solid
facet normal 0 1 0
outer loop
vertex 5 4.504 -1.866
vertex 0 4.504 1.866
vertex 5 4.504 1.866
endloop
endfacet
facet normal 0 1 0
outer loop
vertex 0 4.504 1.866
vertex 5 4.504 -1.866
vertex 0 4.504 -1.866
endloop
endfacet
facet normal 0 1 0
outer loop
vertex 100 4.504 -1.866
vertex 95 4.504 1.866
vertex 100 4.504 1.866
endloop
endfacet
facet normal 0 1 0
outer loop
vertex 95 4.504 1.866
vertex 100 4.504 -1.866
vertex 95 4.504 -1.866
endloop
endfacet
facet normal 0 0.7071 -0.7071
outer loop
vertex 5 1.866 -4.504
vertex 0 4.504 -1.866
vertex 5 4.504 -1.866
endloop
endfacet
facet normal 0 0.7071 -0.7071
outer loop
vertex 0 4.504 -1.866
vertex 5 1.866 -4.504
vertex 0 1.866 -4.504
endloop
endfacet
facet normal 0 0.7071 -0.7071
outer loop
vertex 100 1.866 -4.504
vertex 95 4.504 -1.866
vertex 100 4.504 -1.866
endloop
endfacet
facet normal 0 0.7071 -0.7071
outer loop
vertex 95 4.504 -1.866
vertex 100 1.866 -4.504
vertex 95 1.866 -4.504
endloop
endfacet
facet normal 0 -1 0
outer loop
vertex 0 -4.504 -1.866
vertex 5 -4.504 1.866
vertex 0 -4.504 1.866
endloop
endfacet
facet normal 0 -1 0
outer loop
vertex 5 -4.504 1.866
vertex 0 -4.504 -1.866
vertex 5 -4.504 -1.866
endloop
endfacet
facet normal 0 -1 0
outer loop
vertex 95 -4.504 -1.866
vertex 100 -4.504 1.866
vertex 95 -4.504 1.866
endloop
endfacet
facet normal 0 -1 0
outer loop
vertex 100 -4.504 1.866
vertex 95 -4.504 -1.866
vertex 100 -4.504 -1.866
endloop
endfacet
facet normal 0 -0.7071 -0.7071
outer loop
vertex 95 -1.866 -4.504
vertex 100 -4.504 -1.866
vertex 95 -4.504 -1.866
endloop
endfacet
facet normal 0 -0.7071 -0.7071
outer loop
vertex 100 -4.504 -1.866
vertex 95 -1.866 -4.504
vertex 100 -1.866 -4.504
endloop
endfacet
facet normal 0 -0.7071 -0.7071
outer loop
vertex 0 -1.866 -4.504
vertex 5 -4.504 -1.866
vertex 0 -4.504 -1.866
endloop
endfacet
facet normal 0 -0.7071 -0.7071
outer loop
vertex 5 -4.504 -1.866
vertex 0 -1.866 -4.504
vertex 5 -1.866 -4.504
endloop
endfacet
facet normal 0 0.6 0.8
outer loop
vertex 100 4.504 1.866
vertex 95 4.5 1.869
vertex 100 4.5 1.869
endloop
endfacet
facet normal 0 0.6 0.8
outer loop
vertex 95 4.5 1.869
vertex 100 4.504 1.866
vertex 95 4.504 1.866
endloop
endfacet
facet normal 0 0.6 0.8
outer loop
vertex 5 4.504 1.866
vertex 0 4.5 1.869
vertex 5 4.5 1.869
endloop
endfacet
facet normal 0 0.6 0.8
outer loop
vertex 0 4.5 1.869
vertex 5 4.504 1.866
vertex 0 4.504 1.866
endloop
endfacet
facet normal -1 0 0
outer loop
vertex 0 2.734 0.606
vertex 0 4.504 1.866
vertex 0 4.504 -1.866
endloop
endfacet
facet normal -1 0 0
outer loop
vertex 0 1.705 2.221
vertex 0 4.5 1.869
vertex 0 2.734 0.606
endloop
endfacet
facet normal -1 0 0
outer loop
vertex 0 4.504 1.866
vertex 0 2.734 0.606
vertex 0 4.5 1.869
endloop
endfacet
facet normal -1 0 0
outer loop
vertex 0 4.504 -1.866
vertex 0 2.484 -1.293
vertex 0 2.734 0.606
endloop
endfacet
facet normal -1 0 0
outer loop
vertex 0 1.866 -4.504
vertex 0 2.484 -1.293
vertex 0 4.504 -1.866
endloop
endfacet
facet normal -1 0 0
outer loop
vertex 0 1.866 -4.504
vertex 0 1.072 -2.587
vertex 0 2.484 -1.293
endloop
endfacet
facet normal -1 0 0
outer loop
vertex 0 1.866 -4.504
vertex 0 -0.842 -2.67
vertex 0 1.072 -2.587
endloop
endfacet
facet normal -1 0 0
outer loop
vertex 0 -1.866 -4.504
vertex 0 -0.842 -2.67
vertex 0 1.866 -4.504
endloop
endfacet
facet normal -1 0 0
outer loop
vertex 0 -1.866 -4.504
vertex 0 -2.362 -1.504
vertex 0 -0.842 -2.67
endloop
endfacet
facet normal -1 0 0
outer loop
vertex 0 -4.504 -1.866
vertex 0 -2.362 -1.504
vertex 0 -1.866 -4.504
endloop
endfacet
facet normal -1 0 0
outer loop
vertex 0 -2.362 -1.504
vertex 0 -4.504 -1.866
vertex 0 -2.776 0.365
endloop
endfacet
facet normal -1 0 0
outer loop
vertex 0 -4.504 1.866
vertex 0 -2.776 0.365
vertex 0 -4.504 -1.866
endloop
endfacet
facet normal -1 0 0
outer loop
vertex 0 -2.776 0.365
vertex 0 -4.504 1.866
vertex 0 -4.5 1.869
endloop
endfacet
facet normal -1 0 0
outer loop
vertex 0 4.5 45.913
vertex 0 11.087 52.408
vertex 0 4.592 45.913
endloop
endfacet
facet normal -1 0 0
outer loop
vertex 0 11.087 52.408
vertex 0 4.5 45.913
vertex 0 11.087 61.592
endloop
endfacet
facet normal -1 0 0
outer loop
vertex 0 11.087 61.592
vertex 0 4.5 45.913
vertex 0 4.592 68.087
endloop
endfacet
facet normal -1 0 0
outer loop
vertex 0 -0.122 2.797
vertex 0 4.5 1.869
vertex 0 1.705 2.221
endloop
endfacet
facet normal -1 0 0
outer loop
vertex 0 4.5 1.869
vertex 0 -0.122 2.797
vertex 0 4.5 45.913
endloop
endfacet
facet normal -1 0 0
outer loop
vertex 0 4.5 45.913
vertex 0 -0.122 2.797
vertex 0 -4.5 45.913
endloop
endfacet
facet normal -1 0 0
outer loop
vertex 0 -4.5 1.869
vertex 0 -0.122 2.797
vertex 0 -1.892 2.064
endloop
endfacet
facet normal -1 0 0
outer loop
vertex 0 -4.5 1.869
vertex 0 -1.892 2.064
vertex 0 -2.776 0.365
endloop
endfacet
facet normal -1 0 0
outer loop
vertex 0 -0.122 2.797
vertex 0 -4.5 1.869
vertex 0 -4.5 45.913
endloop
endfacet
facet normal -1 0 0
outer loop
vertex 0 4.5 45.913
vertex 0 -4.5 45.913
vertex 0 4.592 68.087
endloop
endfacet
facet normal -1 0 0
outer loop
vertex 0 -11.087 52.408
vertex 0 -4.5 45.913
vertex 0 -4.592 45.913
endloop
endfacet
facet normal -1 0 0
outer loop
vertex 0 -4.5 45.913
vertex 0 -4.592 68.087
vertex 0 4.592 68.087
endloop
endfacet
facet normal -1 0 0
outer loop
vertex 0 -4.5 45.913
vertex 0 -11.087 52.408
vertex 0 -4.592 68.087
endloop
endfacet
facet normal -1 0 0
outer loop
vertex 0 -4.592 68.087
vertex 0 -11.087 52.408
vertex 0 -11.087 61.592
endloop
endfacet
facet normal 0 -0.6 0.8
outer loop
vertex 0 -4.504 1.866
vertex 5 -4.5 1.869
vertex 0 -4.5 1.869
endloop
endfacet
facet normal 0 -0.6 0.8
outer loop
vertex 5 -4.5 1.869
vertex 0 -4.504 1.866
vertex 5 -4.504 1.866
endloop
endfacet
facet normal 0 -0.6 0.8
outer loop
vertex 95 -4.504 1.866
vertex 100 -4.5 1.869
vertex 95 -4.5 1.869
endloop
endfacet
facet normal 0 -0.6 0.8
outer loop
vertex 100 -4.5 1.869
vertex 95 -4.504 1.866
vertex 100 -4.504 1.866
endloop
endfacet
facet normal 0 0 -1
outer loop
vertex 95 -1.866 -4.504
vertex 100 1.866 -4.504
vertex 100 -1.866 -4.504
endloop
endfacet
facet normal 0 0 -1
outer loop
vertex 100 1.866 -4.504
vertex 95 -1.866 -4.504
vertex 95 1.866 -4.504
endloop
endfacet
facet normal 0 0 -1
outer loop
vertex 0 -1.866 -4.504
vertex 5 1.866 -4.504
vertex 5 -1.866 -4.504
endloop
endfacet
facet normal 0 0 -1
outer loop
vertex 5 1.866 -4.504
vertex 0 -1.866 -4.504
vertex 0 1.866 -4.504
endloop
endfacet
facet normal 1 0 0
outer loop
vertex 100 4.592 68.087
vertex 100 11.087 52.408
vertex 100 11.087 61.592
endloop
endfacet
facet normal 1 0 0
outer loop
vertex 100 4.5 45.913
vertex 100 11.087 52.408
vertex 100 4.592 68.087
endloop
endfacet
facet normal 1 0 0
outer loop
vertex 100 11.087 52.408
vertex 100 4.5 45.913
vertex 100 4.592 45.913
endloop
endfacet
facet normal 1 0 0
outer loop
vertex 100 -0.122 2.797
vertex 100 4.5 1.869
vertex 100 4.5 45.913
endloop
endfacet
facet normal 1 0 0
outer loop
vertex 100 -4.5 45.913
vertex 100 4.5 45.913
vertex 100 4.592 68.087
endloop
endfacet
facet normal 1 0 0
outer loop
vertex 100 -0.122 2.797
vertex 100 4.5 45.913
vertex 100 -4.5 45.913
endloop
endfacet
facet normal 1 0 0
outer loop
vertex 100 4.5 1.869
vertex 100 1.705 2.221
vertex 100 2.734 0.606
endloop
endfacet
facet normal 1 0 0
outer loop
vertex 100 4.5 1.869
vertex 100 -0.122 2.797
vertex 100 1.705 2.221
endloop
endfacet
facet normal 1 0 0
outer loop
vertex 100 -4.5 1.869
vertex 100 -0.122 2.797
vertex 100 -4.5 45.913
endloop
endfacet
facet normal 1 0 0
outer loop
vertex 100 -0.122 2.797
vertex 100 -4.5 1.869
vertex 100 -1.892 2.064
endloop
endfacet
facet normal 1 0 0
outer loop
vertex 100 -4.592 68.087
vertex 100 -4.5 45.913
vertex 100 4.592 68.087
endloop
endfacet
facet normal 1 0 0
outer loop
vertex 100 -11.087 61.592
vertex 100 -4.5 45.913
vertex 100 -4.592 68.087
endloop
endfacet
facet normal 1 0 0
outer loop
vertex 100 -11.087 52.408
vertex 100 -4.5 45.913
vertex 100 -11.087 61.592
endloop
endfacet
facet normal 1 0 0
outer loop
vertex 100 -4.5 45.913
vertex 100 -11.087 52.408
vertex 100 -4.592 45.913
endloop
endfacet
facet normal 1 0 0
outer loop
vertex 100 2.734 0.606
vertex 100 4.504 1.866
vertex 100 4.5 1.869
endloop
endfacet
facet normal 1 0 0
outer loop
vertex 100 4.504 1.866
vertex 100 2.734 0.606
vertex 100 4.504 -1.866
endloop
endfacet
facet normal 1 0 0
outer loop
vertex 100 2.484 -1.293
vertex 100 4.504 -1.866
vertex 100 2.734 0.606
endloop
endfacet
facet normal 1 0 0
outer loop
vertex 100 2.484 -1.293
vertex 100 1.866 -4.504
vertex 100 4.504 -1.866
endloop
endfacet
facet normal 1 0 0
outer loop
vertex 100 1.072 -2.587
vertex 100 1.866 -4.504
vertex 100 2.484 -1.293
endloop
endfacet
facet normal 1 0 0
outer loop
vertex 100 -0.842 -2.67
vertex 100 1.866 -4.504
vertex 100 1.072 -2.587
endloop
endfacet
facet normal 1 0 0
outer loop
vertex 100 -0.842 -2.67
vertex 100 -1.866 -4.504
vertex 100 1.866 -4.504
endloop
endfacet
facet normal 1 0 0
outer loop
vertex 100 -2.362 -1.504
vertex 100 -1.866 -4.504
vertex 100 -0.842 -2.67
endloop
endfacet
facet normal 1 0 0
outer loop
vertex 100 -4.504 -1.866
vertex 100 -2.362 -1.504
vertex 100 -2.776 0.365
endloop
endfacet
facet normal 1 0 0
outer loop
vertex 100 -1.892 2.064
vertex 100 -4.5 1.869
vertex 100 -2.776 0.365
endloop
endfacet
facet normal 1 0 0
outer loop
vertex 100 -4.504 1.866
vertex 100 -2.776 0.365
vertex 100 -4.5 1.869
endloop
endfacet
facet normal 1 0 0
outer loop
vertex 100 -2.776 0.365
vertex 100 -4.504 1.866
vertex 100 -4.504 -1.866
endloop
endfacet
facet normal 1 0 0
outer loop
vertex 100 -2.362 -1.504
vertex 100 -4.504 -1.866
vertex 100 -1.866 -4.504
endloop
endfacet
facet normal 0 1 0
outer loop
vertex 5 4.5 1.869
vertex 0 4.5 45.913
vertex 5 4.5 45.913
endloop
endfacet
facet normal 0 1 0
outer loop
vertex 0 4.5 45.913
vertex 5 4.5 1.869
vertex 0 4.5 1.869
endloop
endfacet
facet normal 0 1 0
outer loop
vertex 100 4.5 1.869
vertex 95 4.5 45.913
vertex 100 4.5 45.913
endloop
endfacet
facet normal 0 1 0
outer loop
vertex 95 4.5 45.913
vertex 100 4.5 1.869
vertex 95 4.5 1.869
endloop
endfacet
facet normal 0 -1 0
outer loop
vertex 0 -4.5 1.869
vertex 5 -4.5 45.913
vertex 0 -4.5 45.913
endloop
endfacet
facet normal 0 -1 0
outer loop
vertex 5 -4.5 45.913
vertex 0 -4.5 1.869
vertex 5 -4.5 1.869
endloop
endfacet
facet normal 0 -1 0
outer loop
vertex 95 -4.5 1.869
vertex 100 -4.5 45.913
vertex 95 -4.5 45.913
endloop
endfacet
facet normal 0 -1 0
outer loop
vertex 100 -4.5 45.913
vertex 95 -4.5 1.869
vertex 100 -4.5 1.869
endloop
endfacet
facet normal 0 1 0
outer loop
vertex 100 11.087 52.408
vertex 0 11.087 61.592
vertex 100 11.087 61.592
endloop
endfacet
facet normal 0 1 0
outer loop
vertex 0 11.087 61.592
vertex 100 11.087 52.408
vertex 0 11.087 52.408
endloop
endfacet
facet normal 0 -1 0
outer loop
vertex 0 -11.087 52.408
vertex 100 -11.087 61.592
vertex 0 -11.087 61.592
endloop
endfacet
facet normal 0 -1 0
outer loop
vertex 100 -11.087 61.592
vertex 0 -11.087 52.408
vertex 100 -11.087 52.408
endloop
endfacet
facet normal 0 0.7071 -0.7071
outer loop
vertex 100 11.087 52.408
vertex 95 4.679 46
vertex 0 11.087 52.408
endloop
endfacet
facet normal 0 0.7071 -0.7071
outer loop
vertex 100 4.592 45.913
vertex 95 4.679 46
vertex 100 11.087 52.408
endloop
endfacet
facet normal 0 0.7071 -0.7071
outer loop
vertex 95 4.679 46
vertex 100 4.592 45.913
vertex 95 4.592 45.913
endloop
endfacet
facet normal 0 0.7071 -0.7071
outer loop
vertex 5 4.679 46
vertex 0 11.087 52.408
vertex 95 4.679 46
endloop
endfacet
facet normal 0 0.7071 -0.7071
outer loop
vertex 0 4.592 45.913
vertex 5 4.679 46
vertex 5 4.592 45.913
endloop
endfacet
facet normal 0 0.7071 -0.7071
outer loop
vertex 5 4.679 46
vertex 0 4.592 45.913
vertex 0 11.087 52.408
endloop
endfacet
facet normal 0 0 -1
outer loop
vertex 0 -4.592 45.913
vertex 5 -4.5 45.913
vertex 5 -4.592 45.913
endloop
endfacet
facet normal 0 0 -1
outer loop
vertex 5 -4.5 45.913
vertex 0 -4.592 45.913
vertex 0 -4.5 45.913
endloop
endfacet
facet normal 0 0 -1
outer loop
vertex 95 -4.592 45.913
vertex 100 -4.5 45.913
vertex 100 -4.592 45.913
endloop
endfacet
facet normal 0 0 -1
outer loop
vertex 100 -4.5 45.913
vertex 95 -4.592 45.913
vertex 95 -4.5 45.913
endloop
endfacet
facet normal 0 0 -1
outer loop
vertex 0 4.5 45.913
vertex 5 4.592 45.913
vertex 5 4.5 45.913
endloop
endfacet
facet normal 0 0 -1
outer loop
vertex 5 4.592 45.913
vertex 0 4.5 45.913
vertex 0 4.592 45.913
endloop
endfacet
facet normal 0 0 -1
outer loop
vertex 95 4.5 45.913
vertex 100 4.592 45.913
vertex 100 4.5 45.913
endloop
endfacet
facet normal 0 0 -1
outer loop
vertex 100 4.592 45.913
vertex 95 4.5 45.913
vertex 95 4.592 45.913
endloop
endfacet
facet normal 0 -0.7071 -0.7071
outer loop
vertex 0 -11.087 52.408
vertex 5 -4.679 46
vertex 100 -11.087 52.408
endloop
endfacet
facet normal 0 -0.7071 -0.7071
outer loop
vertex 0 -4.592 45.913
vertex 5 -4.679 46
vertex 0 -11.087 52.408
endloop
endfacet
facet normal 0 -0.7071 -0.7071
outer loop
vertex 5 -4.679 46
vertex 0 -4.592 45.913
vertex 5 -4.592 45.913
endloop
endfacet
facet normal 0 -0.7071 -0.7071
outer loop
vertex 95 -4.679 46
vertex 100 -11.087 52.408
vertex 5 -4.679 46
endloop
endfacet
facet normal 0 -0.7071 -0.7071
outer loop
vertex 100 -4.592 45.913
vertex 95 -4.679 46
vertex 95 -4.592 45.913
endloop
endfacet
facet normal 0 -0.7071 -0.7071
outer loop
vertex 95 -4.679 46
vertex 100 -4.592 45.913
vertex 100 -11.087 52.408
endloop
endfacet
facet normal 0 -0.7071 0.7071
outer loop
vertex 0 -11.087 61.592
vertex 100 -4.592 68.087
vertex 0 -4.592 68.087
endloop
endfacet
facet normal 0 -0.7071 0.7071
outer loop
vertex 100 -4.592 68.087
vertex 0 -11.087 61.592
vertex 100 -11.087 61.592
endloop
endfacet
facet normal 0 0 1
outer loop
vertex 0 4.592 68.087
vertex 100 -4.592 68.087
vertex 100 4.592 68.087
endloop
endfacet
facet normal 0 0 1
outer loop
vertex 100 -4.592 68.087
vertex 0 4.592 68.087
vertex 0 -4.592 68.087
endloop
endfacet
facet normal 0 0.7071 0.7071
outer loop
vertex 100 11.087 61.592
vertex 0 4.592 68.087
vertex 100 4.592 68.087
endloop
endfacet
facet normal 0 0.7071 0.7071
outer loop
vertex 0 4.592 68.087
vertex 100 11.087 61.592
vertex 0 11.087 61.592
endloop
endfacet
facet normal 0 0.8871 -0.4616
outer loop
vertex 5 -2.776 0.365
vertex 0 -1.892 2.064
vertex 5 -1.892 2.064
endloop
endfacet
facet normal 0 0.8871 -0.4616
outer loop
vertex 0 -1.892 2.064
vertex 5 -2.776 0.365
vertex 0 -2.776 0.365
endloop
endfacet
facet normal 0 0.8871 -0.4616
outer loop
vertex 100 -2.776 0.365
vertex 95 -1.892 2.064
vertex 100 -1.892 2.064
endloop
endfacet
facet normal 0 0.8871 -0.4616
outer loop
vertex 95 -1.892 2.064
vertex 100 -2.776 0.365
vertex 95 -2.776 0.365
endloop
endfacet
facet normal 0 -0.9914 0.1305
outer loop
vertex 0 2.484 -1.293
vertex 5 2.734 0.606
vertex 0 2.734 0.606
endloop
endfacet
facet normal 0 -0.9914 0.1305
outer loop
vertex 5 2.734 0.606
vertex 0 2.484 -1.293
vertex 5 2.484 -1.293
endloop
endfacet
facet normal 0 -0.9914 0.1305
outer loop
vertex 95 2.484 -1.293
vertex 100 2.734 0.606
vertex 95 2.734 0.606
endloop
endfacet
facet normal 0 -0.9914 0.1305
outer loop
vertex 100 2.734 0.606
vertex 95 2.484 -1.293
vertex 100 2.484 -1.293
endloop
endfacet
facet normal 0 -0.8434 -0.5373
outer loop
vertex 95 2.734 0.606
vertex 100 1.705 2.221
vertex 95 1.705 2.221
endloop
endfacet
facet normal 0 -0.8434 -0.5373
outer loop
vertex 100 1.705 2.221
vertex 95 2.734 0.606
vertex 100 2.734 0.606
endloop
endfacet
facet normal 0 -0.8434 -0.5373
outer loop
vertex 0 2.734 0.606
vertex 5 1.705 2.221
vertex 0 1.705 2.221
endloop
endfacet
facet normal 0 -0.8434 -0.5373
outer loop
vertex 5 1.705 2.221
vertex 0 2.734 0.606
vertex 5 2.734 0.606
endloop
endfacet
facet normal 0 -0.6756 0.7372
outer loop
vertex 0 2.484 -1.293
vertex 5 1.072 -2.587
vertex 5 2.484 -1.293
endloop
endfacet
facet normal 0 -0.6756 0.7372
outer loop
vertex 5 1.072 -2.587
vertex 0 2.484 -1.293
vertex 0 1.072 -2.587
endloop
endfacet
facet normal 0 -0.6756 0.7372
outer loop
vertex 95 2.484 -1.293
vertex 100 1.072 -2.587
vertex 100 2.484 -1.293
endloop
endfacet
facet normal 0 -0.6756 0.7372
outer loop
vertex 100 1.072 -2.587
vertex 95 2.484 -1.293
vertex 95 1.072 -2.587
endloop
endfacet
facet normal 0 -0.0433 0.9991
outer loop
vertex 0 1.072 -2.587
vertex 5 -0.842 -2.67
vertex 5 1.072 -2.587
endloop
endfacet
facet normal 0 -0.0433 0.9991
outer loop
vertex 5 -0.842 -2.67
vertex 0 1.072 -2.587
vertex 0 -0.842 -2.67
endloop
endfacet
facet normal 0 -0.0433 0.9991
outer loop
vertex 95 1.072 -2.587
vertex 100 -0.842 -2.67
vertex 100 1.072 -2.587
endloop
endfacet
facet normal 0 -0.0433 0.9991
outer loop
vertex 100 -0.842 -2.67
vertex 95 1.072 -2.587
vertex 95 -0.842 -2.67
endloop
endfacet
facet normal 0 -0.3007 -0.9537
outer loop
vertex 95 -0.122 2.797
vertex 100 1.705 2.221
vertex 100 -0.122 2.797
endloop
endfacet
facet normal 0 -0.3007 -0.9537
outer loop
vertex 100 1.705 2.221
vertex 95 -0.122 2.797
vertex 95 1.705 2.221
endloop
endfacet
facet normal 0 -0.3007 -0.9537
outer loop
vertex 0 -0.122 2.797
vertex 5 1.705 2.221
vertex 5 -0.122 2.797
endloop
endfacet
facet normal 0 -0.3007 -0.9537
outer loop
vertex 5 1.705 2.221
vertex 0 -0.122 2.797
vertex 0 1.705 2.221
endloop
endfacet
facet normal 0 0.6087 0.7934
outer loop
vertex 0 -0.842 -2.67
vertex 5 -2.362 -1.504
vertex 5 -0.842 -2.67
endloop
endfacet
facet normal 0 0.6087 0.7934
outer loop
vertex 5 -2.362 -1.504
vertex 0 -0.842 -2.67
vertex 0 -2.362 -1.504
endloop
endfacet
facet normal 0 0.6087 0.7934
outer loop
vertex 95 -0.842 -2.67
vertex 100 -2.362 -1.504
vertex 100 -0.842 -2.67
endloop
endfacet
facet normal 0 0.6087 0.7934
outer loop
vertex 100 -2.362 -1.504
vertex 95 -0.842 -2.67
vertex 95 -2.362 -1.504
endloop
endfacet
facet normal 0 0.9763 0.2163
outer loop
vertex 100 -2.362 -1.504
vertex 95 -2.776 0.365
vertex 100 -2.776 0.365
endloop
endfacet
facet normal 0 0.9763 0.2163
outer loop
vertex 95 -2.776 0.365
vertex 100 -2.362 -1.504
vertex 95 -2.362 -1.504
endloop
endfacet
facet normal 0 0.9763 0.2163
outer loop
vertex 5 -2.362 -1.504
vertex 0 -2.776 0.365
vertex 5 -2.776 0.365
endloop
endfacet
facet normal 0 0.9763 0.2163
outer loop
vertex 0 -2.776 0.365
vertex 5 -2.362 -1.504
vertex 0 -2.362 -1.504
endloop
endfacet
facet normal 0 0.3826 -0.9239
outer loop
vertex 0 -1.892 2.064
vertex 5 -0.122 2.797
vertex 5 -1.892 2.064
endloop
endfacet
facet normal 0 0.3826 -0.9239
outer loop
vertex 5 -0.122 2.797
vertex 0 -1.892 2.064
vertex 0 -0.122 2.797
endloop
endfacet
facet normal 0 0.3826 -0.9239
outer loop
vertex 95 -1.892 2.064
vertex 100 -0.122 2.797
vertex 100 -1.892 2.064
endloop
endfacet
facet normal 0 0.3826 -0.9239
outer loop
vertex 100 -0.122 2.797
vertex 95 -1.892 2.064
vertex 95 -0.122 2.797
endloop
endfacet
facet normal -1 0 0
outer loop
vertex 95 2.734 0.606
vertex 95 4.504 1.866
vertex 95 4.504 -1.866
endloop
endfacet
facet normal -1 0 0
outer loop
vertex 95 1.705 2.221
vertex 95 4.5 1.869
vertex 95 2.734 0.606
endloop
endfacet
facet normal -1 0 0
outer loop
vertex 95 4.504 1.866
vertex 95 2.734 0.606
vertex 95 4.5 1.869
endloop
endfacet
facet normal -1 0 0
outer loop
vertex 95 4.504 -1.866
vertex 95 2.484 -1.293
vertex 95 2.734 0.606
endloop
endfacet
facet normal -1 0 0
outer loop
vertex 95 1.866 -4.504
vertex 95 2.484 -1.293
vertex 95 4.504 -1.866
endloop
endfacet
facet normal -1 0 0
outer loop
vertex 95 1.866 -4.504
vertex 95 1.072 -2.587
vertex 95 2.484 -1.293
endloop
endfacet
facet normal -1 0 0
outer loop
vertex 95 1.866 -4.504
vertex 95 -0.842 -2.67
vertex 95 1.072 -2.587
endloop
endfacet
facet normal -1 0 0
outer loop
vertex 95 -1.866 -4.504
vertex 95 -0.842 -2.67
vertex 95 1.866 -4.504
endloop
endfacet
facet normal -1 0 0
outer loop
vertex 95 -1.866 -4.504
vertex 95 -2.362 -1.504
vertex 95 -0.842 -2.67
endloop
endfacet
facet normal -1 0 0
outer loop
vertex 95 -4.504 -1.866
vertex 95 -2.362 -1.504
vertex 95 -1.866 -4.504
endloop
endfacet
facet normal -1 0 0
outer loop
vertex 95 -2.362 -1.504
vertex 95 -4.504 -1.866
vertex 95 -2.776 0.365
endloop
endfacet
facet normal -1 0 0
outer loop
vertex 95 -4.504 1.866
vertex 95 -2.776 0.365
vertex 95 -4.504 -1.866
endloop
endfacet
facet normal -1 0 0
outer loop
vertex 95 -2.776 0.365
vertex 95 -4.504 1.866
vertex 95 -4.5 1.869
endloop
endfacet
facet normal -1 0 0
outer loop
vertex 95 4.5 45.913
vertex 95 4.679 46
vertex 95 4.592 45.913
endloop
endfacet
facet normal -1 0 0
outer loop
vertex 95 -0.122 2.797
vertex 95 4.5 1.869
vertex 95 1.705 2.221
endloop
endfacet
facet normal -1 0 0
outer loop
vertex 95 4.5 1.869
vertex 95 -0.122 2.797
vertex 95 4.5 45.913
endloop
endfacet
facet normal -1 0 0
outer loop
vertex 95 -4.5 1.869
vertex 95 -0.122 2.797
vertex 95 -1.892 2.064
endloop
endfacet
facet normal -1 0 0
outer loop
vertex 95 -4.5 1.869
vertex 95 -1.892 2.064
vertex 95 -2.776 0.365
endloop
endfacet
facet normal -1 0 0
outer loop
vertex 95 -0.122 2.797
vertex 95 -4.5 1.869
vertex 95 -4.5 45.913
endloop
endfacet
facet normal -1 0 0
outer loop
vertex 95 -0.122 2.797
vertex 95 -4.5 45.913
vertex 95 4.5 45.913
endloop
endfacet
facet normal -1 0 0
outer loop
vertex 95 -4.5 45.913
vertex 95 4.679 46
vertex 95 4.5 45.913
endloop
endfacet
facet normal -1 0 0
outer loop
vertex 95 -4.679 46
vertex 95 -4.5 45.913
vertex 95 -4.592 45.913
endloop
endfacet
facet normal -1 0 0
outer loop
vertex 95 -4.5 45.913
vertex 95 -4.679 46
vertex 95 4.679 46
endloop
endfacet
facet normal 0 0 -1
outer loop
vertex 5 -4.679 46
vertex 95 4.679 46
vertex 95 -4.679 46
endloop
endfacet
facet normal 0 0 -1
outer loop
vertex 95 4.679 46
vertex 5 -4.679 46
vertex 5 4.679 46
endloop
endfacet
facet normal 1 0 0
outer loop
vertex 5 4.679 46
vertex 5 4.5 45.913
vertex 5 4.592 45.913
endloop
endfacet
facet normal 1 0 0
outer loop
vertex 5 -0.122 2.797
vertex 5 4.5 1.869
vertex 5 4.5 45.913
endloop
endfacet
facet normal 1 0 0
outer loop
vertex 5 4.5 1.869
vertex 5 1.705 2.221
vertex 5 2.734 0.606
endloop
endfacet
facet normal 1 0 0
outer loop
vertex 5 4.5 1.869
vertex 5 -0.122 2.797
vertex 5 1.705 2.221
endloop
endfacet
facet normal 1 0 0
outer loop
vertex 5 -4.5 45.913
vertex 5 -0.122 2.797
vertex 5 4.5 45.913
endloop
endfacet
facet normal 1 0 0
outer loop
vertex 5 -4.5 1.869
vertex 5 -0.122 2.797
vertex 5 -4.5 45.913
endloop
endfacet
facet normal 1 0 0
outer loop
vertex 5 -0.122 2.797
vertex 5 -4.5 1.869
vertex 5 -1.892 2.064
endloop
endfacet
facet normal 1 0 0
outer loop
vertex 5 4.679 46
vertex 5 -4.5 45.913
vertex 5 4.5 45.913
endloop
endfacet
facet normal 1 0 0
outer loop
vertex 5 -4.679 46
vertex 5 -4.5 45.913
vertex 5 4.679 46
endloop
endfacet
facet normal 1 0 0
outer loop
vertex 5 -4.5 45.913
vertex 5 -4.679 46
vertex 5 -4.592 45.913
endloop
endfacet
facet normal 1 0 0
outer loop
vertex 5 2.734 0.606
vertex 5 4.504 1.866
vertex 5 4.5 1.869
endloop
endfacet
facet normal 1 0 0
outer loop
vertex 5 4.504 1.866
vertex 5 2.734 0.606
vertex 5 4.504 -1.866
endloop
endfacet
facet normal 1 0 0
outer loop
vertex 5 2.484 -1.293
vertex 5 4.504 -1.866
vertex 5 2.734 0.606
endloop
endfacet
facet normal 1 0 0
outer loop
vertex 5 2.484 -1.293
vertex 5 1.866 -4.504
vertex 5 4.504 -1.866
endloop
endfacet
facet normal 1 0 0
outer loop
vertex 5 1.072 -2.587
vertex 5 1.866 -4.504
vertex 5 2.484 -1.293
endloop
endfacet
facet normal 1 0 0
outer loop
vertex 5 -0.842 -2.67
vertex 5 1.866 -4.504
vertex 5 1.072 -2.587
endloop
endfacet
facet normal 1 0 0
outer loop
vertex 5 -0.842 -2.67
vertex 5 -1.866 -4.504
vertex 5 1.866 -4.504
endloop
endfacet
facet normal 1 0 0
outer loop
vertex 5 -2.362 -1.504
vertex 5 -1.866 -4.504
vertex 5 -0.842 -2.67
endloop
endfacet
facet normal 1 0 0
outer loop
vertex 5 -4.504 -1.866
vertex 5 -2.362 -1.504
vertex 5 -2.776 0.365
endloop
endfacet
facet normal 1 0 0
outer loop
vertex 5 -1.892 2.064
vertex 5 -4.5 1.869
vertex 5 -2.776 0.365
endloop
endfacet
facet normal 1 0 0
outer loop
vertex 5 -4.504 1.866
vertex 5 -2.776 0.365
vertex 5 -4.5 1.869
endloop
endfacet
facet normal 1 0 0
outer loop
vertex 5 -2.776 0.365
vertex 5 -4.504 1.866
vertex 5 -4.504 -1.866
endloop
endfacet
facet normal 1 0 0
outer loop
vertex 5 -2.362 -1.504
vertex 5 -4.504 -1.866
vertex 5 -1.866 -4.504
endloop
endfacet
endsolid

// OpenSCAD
difference() {
    union() {
        rotate(22.5,[1,0,0]) {
            rotate(90,[0,1,0]) {
                difference() {        
                    linear_extrude(100) {
                        circle(d=9.75,$fn=8);
                    };
                };       
            };
        };
        translate([0,-4.5,1]) {
            cube([100,9,45]);  
        };
        translate([0,0,57]) {   
            rotate(22.5,[1,0,0]) {
                rotate(90,[0,1,0]) {
                   linear_extrude(100) {
                        circle(d=24,$fn=8);
                    };
                };
            };
        };
    };   

    rotate(22.5,[1,0,0]) {
        rotate(90,[0,1,0]) {
            cylinder(d=5.6, h=100);
        };
    };
    
    translate([5,-10,-5]) {
        cube([90,30,51]);
    }
};  
